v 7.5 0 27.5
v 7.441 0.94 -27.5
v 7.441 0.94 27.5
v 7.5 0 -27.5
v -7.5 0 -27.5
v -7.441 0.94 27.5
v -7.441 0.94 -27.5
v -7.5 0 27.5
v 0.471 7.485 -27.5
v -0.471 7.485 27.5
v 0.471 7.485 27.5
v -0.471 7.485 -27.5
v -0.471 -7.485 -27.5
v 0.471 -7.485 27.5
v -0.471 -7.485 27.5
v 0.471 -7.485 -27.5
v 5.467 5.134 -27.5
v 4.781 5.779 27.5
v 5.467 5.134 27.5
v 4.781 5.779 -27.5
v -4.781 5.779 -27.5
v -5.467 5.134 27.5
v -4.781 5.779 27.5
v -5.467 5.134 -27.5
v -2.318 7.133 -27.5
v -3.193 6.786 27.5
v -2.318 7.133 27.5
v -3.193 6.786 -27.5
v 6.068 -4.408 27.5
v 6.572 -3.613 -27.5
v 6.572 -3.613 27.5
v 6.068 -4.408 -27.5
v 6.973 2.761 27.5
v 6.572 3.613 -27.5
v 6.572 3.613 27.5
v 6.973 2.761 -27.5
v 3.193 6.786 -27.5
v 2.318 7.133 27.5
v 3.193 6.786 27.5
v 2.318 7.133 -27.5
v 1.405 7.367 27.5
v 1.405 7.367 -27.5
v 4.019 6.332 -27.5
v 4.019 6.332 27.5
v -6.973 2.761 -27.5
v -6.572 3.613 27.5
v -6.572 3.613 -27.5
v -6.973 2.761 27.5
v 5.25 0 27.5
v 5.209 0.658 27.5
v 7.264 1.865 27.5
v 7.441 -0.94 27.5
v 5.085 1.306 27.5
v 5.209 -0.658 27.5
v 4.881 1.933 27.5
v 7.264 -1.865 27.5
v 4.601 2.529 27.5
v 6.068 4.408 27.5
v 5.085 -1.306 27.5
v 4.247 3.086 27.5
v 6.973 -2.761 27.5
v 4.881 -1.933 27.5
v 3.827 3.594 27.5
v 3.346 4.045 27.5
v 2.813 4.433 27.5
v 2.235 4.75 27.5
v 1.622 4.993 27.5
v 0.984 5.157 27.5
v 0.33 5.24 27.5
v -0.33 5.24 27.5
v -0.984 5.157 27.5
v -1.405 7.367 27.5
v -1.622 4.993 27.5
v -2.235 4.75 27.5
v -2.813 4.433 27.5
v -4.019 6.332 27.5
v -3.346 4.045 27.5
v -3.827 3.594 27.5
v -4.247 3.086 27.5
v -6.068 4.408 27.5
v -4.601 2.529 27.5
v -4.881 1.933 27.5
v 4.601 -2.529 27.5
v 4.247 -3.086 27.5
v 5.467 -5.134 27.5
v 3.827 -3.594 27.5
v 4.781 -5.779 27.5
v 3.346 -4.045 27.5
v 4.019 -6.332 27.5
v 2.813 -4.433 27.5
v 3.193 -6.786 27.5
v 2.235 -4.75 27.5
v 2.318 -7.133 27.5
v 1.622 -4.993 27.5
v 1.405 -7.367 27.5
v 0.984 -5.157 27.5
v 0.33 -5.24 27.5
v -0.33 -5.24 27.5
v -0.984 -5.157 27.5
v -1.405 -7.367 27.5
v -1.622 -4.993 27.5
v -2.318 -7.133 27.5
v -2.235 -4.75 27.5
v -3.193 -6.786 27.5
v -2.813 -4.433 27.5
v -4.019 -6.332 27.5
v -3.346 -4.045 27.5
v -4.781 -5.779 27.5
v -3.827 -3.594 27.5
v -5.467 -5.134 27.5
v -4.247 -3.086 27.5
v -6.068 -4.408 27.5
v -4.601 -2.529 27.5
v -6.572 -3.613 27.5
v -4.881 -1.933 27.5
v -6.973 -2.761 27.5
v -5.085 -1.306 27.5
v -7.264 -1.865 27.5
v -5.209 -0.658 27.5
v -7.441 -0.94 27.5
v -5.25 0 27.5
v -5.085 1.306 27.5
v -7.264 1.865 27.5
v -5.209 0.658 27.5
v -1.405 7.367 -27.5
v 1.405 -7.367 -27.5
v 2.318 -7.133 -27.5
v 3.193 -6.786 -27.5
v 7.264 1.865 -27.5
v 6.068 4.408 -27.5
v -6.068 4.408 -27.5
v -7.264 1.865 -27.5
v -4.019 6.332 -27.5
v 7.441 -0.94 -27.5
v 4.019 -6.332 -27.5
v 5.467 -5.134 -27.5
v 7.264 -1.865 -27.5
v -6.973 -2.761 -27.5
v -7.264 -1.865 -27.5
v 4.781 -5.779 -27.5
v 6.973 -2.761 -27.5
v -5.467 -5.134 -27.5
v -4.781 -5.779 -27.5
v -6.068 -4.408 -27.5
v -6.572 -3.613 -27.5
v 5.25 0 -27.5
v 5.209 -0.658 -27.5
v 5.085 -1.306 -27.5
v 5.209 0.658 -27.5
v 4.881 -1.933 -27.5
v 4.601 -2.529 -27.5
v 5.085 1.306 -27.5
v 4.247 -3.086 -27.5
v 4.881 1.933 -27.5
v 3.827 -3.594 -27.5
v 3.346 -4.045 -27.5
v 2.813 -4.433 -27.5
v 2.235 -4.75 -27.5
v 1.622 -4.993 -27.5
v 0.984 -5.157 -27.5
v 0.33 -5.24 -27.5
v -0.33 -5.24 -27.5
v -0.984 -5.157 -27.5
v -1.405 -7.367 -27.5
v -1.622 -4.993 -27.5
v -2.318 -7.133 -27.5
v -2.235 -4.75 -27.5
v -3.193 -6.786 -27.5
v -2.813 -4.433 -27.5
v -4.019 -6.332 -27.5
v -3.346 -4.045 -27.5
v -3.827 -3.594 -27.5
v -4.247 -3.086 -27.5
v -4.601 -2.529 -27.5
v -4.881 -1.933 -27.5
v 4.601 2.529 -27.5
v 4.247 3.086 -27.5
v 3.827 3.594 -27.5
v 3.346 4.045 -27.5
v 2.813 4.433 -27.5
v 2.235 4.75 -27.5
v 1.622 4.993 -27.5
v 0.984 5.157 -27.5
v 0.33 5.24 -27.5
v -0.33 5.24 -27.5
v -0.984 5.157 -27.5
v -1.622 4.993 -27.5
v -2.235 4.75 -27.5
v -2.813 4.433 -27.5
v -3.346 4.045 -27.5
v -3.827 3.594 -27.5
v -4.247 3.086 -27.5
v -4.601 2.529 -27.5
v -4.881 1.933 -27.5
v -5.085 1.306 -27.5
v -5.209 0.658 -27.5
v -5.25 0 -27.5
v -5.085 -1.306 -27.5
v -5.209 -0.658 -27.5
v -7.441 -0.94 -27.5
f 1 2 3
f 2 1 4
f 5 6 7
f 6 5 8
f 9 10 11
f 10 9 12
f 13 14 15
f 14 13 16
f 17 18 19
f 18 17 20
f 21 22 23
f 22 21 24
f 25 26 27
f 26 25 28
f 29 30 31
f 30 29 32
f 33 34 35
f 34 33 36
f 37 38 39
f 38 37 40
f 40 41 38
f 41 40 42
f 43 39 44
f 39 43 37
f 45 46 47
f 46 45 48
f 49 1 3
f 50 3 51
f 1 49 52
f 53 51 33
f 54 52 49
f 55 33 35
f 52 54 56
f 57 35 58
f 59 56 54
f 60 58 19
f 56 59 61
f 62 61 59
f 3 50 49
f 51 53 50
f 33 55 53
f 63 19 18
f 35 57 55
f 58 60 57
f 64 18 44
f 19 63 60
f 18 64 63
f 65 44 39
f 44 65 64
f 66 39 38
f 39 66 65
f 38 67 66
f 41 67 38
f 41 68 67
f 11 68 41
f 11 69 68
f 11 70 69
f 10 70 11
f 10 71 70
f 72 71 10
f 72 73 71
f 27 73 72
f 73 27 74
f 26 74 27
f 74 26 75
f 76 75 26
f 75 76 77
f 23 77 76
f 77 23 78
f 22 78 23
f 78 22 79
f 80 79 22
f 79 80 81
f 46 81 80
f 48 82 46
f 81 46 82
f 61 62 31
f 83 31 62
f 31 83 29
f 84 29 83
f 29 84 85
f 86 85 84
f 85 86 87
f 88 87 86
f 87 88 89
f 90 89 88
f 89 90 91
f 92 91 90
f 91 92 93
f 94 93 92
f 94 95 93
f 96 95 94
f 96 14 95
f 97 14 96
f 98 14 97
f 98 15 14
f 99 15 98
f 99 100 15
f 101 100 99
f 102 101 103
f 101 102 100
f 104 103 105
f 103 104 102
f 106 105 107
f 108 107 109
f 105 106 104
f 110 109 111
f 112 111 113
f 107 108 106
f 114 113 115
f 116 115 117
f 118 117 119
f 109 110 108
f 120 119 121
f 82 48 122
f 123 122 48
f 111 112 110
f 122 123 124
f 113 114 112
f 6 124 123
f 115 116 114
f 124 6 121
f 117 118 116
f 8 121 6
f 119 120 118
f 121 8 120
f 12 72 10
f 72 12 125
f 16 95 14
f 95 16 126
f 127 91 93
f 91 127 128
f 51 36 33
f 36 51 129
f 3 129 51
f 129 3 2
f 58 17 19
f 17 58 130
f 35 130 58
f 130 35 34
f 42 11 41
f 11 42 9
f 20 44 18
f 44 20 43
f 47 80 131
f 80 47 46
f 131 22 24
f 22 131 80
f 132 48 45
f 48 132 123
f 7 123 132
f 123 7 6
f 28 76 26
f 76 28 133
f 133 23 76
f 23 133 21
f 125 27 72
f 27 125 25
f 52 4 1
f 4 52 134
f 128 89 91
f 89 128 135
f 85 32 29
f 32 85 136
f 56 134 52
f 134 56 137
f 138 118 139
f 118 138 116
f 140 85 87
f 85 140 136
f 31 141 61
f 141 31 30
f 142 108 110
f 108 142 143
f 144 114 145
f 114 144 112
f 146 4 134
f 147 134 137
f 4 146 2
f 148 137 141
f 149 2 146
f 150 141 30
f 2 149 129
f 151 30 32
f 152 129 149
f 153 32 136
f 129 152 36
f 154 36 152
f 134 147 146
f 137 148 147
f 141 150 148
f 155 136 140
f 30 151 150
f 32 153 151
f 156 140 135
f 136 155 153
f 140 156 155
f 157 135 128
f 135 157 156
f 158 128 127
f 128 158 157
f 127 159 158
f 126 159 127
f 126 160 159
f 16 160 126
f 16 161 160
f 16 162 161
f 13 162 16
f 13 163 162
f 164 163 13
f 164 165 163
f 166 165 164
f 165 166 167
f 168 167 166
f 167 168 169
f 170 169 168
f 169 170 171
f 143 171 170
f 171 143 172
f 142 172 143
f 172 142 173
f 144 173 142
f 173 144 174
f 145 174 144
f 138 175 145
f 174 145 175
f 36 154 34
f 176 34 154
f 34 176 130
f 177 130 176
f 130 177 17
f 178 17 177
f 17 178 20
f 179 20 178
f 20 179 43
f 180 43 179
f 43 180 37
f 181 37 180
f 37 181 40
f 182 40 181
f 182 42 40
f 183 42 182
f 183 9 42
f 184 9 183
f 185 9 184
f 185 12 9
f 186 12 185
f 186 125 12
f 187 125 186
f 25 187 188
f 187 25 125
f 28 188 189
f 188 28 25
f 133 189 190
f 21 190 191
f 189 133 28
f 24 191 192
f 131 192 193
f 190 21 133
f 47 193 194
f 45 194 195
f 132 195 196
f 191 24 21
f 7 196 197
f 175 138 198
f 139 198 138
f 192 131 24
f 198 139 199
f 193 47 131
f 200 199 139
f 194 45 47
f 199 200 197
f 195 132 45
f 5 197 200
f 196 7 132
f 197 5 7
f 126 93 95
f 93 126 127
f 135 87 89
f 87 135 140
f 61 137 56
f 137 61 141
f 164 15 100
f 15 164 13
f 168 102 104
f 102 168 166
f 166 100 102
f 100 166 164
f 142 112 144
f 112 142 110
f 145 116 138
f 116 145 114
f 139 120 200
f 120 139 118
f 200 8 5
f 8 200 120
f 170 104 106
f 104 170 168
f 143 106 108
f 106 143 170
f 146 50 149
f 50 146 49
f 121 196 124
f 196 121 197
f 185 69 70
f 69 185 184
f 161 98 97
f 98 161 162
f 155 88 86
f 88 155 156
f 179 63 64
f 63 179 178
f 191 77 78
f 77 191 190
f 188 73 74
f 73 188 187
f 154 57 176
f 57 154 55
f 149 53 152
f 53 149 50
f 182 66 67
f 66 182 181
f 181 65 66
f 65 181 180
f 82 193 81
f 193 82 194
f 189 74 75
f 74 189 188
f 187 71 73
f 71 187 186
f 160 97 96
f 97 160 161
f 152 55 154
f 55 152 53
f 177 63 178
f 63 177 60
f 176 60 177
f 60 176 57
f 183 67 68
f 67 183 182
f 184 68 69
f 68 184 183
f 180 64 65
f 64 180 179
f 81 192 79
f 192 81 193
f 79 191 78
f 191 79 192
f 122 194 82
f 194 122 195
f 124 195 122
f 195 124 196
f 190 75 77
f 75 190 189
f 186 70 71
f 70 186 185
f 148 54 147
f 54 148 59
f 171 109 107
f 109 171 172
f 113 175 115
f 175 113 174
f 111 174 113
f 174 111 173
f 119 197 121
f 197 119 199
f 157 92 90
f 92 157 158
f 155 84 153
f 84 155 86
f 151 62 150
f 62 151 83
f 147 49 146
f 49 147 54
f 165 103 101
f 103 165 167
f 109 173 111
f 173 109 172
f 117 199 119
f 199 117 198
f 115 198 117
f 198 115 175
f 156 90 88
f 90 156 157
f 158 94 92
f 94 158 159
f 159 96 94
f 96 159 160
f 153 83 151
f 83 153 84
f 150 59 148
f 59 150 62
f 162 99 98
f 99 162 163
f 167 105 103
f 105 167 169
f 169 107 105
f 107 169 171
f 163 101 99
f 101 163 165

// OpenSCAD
$fn = 50;


difference() {
	union() {
		translate(v = [0, 0, -27.5000000000]) {
			cylinder(h = 55, r = 7.5000000000);
		}
	}
	union() {
		translate(v = [0, 0, -100.0000000000]) {
			cylinder(h = 200, r = 5.2500000000);
		}
	}
}
